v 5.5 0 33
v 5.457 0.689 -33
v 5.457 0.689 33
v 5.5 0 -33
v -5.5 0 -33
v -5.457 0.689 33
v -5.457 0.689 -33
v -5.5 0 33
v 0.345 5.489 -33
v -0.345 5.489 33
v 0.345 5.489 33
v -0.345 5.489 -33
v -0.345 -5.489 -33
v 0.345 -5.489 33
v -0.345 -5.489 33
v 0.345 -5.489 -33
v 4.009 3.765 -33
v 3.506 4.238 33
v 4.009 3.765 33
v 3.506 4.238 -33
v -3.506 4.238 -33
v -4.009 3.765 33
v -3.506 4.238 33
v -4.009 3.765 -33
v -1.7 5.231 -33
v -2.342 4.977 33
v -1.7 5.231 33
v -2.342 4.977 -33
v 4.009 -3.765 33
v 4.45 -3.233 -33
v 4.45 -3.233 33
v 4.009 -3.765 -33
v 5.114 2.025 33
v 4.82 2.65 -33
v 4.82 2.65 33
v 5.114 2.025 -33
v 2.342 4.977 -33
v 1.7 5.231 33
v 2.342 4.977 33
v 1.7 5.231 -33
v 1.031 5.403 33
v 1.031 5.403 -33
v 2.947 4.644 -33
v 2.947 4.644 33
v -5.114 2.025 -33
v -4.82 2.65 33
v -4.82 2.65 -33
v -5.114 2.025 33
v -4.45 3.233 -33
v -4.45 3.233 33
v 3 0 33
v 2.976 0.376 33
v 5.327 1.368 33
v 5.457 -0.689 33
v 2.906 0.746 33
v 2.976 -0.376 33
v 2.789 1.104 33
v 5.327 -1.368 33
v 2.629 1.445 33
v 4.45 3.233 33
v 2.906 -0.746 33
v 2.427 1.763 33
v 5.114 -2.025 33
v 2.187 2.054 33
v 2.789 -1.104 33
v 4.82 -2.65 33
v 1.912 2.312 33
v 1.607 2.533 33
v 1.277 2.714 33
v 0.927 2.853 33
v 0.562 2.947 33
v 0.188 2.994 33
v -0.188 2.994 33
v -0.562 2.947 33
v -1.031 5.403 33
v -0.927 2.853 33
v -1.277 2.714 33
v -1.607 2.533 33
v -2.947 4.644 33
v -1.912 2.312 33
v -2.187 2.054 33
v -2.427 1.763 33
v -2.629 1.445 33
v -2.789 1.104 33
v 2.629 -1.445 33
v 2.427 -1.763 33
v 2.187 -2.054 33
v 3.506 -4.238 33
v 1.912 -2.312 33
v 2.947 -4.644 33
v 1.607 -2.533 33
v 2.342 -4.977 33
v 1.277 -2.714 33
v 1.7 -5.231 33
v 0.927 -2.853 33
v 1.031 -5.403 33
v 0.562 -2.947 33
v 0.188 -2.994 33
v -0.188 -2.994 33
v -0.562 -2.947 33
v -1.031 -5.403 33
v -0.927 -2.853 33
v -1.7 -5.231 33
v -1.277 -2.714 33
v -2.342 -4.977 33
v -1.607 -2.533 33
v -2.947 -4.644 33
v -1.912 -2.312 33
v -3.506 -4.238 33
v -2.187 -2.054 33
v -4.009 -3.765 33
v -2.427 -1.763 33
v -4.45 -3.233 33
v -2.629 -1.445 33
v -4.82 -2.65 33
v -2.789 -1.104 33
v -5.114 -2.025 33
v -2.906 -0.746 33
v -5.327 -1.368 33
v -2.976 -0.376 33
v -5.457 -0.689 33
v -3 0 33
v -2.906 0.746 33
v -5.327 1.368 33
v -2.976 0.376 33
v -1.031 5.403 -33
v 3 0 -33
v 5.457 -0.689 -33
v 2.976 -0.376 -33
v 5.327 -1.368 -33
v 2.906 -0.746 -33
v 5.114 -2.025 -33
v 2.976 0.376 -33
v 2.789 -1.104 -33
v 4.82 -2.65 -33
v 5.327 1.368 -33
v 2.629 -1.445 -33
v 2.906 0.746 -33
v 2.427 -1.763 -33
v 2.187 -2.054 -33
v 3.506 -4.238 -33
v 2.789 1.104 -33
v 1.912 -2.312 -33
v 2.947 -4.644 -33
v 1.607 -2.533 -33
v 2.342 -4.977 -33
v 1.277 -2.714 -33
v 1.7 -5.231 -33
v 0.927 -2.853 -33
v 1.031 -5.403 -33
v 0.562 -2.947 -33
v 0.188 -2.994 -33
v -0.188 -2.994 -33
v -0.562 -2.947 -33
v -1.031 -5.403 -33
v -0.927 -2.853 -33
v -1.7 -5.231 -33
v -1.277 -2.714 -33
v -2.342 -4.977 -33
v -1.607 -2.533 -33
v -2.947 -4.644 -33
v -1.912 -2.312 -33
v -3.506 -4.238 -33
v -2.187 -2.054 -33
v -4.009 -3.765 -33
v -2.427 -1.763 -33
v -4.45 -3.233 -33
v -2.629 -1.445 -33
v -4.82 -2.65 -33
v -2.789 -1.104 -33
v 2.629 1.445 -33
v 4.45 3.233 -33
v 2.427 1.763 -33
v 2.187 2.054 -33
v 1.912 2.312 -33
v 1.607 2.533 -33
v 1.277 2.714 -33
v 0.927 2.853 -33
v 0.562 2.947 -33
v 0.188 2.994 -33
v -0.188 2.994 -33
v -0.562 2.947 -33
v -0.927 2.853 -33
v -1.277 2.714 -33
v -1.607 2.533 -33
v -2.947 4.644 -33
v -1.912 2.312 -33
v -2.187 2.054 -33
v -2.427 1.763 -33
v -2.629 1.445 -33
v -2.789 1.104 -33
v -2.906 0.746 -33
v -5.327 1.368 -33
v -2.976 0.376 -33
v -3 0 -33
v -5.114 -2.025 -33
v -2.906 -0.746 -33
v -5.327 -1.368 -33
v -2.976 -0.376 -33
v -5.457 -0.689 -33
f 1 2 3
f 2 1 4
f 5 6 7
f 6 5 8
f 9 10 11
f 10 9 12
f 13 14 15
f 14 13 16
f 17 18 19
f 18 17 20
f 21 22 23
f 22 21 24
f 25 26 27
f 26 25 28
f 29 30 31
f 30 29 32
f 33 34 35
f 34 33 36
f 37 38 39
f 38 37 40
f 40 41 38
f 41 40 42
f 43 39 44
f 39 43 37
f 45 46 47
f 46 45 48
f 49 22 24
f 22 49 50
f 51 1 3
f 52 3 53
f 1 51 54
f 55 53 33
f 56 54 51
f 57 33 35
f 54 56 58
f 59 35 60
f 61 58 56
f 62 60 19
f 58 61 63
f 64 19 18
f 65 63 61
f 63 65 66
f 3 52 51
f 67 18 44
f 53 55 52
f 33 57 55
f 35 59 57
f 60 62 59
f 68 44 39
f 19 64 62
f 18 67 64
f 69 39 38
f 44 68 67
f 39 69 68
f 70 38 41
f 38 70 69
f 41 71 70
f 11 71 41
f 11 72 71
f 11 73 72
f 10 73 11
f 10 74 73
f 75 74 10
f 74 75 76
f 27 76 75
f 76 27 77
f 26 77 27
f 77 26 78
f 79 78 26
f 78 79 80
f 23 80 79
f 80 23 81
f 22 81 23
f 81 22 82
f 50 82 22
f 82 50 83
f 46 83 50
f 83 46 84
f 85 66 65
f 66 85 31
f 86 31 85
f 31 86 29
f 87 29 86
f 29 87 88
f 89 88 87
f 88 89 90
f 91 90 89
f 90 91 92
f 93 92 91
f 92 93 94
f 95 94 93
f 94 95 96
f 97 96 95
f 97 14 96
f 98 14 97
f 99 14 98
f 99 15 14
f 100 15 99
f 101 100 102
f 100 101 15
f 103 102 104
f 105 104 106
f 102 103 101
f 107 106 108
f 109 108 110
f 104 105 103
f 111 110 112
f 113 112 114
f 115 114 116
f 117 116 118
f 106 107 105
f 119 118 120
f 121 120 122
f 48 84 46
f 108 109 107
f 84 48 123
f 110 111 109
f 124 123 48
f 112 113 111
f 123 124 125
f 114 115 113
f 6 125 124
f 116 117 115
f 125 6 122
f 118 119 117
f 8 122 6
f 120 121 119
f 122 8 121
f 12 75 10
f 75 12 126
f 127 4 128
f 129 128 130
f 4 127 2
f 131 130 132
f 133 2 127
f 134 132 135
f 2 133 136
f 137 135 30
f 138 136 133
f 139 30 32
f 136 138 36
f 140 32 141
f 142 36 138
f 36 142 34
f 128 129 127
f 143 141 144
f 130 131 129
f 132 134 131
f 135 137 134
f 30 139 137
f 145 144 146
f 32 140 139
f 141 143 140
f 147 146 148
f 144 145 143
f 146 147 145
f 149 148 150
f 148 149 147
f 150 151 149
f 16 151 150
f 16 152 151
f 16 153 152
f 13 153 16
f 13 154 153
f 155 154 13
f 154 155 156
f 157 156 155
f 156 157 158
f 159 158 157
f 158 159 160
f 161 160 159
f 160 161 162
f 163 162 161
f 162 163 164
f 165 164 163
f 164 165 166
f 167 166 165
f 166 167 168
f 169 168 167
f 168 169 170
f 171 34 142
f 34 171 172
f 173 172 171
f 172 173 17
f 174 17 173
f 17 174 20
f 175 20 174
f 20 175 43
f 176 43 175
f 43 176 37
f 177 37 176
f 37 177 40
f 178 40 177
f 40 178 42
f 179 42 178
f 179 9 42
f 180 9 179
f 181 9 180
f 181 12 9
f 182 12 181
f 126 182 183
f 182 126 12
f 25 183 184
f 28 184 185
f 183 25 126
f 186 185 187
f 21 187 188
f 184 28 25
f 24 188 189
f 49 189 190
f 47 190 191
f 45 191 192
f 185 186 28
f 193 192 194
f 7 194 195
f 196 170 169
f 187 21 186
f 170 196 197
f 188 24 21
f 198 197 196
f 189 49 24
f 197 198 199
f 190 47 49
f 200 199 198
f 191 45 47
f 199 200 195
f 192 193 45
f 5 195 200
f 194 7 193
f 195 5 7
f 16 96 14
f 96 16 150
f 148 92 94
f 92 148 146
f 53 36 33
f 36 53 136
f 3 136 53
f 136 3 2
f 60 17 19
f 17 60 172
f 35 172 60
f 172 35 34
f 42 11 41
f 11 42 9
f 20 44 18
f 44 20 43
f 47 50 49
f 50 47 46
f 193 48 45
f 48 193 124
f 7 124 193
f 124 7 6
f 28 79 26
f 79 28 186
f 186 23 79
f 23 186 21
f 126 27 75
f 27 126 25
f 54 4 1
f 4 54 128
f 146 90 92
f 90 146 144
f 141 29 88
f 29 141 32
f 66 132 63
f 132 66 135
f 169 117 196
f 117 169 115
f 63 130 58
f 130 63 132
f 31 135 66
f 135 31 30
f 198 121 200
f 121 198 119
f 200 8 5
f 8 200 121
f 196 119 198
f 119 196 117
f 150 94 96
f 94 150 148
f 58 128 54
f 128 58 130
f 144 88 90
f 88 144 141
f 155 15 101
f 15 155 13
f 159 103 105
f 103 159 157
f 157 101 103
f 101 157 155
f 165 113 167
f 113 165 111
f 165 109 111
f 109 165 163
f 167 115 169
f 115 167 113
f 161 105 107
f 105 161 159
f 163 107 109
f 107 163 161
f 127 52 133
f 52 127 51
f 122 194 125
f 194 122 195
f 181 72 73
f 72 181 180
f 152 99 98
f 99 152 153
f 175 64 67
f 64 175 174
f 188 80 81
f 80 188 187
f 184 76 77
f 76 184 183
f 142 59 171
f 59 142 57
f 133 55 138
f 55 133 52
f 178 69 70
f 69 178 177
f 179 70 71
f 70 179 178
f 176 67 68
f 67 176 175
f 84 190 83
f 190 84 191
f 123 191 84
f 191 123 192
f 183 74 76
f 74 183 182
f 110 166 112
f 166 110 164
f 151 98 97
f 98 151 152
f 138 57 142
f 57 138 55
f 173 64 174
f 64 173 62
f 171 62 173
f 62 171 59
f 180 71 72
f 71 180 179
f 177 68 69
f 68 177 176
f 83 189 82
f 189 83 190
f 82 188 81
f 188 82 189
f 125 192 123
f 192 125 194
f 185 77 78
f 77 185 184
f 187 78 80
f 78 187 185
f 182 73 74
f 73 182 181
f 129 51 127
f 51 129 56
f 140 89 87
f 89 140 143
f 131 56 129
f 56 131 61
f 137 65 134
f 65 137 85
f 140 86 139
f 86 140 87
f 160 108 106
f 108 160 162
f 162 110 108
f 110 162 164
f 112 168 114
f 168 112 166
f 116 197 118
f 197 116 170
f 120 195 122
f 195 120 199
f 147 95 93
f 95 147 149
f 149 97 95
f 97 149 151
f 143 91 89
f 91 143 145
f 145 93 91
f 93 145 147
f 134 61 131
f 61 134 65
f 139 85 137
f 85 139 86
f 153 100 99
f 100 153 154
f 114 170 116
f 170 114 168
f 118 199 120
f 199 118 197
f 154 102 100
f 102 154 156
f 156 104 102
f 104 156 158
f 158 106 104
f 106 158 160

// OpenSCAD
$fn = 50;


difference() {
	union() {
		translate(v = [0, 0, -33.0000000000]) {
			cylinder(h = 66, r = 5.5000000000);
		}
	}
	union() {
		translate(v = [0, 0, -100.0000000000]) {
			cylinder(h = 200, r = 3);
		}
	}
}
